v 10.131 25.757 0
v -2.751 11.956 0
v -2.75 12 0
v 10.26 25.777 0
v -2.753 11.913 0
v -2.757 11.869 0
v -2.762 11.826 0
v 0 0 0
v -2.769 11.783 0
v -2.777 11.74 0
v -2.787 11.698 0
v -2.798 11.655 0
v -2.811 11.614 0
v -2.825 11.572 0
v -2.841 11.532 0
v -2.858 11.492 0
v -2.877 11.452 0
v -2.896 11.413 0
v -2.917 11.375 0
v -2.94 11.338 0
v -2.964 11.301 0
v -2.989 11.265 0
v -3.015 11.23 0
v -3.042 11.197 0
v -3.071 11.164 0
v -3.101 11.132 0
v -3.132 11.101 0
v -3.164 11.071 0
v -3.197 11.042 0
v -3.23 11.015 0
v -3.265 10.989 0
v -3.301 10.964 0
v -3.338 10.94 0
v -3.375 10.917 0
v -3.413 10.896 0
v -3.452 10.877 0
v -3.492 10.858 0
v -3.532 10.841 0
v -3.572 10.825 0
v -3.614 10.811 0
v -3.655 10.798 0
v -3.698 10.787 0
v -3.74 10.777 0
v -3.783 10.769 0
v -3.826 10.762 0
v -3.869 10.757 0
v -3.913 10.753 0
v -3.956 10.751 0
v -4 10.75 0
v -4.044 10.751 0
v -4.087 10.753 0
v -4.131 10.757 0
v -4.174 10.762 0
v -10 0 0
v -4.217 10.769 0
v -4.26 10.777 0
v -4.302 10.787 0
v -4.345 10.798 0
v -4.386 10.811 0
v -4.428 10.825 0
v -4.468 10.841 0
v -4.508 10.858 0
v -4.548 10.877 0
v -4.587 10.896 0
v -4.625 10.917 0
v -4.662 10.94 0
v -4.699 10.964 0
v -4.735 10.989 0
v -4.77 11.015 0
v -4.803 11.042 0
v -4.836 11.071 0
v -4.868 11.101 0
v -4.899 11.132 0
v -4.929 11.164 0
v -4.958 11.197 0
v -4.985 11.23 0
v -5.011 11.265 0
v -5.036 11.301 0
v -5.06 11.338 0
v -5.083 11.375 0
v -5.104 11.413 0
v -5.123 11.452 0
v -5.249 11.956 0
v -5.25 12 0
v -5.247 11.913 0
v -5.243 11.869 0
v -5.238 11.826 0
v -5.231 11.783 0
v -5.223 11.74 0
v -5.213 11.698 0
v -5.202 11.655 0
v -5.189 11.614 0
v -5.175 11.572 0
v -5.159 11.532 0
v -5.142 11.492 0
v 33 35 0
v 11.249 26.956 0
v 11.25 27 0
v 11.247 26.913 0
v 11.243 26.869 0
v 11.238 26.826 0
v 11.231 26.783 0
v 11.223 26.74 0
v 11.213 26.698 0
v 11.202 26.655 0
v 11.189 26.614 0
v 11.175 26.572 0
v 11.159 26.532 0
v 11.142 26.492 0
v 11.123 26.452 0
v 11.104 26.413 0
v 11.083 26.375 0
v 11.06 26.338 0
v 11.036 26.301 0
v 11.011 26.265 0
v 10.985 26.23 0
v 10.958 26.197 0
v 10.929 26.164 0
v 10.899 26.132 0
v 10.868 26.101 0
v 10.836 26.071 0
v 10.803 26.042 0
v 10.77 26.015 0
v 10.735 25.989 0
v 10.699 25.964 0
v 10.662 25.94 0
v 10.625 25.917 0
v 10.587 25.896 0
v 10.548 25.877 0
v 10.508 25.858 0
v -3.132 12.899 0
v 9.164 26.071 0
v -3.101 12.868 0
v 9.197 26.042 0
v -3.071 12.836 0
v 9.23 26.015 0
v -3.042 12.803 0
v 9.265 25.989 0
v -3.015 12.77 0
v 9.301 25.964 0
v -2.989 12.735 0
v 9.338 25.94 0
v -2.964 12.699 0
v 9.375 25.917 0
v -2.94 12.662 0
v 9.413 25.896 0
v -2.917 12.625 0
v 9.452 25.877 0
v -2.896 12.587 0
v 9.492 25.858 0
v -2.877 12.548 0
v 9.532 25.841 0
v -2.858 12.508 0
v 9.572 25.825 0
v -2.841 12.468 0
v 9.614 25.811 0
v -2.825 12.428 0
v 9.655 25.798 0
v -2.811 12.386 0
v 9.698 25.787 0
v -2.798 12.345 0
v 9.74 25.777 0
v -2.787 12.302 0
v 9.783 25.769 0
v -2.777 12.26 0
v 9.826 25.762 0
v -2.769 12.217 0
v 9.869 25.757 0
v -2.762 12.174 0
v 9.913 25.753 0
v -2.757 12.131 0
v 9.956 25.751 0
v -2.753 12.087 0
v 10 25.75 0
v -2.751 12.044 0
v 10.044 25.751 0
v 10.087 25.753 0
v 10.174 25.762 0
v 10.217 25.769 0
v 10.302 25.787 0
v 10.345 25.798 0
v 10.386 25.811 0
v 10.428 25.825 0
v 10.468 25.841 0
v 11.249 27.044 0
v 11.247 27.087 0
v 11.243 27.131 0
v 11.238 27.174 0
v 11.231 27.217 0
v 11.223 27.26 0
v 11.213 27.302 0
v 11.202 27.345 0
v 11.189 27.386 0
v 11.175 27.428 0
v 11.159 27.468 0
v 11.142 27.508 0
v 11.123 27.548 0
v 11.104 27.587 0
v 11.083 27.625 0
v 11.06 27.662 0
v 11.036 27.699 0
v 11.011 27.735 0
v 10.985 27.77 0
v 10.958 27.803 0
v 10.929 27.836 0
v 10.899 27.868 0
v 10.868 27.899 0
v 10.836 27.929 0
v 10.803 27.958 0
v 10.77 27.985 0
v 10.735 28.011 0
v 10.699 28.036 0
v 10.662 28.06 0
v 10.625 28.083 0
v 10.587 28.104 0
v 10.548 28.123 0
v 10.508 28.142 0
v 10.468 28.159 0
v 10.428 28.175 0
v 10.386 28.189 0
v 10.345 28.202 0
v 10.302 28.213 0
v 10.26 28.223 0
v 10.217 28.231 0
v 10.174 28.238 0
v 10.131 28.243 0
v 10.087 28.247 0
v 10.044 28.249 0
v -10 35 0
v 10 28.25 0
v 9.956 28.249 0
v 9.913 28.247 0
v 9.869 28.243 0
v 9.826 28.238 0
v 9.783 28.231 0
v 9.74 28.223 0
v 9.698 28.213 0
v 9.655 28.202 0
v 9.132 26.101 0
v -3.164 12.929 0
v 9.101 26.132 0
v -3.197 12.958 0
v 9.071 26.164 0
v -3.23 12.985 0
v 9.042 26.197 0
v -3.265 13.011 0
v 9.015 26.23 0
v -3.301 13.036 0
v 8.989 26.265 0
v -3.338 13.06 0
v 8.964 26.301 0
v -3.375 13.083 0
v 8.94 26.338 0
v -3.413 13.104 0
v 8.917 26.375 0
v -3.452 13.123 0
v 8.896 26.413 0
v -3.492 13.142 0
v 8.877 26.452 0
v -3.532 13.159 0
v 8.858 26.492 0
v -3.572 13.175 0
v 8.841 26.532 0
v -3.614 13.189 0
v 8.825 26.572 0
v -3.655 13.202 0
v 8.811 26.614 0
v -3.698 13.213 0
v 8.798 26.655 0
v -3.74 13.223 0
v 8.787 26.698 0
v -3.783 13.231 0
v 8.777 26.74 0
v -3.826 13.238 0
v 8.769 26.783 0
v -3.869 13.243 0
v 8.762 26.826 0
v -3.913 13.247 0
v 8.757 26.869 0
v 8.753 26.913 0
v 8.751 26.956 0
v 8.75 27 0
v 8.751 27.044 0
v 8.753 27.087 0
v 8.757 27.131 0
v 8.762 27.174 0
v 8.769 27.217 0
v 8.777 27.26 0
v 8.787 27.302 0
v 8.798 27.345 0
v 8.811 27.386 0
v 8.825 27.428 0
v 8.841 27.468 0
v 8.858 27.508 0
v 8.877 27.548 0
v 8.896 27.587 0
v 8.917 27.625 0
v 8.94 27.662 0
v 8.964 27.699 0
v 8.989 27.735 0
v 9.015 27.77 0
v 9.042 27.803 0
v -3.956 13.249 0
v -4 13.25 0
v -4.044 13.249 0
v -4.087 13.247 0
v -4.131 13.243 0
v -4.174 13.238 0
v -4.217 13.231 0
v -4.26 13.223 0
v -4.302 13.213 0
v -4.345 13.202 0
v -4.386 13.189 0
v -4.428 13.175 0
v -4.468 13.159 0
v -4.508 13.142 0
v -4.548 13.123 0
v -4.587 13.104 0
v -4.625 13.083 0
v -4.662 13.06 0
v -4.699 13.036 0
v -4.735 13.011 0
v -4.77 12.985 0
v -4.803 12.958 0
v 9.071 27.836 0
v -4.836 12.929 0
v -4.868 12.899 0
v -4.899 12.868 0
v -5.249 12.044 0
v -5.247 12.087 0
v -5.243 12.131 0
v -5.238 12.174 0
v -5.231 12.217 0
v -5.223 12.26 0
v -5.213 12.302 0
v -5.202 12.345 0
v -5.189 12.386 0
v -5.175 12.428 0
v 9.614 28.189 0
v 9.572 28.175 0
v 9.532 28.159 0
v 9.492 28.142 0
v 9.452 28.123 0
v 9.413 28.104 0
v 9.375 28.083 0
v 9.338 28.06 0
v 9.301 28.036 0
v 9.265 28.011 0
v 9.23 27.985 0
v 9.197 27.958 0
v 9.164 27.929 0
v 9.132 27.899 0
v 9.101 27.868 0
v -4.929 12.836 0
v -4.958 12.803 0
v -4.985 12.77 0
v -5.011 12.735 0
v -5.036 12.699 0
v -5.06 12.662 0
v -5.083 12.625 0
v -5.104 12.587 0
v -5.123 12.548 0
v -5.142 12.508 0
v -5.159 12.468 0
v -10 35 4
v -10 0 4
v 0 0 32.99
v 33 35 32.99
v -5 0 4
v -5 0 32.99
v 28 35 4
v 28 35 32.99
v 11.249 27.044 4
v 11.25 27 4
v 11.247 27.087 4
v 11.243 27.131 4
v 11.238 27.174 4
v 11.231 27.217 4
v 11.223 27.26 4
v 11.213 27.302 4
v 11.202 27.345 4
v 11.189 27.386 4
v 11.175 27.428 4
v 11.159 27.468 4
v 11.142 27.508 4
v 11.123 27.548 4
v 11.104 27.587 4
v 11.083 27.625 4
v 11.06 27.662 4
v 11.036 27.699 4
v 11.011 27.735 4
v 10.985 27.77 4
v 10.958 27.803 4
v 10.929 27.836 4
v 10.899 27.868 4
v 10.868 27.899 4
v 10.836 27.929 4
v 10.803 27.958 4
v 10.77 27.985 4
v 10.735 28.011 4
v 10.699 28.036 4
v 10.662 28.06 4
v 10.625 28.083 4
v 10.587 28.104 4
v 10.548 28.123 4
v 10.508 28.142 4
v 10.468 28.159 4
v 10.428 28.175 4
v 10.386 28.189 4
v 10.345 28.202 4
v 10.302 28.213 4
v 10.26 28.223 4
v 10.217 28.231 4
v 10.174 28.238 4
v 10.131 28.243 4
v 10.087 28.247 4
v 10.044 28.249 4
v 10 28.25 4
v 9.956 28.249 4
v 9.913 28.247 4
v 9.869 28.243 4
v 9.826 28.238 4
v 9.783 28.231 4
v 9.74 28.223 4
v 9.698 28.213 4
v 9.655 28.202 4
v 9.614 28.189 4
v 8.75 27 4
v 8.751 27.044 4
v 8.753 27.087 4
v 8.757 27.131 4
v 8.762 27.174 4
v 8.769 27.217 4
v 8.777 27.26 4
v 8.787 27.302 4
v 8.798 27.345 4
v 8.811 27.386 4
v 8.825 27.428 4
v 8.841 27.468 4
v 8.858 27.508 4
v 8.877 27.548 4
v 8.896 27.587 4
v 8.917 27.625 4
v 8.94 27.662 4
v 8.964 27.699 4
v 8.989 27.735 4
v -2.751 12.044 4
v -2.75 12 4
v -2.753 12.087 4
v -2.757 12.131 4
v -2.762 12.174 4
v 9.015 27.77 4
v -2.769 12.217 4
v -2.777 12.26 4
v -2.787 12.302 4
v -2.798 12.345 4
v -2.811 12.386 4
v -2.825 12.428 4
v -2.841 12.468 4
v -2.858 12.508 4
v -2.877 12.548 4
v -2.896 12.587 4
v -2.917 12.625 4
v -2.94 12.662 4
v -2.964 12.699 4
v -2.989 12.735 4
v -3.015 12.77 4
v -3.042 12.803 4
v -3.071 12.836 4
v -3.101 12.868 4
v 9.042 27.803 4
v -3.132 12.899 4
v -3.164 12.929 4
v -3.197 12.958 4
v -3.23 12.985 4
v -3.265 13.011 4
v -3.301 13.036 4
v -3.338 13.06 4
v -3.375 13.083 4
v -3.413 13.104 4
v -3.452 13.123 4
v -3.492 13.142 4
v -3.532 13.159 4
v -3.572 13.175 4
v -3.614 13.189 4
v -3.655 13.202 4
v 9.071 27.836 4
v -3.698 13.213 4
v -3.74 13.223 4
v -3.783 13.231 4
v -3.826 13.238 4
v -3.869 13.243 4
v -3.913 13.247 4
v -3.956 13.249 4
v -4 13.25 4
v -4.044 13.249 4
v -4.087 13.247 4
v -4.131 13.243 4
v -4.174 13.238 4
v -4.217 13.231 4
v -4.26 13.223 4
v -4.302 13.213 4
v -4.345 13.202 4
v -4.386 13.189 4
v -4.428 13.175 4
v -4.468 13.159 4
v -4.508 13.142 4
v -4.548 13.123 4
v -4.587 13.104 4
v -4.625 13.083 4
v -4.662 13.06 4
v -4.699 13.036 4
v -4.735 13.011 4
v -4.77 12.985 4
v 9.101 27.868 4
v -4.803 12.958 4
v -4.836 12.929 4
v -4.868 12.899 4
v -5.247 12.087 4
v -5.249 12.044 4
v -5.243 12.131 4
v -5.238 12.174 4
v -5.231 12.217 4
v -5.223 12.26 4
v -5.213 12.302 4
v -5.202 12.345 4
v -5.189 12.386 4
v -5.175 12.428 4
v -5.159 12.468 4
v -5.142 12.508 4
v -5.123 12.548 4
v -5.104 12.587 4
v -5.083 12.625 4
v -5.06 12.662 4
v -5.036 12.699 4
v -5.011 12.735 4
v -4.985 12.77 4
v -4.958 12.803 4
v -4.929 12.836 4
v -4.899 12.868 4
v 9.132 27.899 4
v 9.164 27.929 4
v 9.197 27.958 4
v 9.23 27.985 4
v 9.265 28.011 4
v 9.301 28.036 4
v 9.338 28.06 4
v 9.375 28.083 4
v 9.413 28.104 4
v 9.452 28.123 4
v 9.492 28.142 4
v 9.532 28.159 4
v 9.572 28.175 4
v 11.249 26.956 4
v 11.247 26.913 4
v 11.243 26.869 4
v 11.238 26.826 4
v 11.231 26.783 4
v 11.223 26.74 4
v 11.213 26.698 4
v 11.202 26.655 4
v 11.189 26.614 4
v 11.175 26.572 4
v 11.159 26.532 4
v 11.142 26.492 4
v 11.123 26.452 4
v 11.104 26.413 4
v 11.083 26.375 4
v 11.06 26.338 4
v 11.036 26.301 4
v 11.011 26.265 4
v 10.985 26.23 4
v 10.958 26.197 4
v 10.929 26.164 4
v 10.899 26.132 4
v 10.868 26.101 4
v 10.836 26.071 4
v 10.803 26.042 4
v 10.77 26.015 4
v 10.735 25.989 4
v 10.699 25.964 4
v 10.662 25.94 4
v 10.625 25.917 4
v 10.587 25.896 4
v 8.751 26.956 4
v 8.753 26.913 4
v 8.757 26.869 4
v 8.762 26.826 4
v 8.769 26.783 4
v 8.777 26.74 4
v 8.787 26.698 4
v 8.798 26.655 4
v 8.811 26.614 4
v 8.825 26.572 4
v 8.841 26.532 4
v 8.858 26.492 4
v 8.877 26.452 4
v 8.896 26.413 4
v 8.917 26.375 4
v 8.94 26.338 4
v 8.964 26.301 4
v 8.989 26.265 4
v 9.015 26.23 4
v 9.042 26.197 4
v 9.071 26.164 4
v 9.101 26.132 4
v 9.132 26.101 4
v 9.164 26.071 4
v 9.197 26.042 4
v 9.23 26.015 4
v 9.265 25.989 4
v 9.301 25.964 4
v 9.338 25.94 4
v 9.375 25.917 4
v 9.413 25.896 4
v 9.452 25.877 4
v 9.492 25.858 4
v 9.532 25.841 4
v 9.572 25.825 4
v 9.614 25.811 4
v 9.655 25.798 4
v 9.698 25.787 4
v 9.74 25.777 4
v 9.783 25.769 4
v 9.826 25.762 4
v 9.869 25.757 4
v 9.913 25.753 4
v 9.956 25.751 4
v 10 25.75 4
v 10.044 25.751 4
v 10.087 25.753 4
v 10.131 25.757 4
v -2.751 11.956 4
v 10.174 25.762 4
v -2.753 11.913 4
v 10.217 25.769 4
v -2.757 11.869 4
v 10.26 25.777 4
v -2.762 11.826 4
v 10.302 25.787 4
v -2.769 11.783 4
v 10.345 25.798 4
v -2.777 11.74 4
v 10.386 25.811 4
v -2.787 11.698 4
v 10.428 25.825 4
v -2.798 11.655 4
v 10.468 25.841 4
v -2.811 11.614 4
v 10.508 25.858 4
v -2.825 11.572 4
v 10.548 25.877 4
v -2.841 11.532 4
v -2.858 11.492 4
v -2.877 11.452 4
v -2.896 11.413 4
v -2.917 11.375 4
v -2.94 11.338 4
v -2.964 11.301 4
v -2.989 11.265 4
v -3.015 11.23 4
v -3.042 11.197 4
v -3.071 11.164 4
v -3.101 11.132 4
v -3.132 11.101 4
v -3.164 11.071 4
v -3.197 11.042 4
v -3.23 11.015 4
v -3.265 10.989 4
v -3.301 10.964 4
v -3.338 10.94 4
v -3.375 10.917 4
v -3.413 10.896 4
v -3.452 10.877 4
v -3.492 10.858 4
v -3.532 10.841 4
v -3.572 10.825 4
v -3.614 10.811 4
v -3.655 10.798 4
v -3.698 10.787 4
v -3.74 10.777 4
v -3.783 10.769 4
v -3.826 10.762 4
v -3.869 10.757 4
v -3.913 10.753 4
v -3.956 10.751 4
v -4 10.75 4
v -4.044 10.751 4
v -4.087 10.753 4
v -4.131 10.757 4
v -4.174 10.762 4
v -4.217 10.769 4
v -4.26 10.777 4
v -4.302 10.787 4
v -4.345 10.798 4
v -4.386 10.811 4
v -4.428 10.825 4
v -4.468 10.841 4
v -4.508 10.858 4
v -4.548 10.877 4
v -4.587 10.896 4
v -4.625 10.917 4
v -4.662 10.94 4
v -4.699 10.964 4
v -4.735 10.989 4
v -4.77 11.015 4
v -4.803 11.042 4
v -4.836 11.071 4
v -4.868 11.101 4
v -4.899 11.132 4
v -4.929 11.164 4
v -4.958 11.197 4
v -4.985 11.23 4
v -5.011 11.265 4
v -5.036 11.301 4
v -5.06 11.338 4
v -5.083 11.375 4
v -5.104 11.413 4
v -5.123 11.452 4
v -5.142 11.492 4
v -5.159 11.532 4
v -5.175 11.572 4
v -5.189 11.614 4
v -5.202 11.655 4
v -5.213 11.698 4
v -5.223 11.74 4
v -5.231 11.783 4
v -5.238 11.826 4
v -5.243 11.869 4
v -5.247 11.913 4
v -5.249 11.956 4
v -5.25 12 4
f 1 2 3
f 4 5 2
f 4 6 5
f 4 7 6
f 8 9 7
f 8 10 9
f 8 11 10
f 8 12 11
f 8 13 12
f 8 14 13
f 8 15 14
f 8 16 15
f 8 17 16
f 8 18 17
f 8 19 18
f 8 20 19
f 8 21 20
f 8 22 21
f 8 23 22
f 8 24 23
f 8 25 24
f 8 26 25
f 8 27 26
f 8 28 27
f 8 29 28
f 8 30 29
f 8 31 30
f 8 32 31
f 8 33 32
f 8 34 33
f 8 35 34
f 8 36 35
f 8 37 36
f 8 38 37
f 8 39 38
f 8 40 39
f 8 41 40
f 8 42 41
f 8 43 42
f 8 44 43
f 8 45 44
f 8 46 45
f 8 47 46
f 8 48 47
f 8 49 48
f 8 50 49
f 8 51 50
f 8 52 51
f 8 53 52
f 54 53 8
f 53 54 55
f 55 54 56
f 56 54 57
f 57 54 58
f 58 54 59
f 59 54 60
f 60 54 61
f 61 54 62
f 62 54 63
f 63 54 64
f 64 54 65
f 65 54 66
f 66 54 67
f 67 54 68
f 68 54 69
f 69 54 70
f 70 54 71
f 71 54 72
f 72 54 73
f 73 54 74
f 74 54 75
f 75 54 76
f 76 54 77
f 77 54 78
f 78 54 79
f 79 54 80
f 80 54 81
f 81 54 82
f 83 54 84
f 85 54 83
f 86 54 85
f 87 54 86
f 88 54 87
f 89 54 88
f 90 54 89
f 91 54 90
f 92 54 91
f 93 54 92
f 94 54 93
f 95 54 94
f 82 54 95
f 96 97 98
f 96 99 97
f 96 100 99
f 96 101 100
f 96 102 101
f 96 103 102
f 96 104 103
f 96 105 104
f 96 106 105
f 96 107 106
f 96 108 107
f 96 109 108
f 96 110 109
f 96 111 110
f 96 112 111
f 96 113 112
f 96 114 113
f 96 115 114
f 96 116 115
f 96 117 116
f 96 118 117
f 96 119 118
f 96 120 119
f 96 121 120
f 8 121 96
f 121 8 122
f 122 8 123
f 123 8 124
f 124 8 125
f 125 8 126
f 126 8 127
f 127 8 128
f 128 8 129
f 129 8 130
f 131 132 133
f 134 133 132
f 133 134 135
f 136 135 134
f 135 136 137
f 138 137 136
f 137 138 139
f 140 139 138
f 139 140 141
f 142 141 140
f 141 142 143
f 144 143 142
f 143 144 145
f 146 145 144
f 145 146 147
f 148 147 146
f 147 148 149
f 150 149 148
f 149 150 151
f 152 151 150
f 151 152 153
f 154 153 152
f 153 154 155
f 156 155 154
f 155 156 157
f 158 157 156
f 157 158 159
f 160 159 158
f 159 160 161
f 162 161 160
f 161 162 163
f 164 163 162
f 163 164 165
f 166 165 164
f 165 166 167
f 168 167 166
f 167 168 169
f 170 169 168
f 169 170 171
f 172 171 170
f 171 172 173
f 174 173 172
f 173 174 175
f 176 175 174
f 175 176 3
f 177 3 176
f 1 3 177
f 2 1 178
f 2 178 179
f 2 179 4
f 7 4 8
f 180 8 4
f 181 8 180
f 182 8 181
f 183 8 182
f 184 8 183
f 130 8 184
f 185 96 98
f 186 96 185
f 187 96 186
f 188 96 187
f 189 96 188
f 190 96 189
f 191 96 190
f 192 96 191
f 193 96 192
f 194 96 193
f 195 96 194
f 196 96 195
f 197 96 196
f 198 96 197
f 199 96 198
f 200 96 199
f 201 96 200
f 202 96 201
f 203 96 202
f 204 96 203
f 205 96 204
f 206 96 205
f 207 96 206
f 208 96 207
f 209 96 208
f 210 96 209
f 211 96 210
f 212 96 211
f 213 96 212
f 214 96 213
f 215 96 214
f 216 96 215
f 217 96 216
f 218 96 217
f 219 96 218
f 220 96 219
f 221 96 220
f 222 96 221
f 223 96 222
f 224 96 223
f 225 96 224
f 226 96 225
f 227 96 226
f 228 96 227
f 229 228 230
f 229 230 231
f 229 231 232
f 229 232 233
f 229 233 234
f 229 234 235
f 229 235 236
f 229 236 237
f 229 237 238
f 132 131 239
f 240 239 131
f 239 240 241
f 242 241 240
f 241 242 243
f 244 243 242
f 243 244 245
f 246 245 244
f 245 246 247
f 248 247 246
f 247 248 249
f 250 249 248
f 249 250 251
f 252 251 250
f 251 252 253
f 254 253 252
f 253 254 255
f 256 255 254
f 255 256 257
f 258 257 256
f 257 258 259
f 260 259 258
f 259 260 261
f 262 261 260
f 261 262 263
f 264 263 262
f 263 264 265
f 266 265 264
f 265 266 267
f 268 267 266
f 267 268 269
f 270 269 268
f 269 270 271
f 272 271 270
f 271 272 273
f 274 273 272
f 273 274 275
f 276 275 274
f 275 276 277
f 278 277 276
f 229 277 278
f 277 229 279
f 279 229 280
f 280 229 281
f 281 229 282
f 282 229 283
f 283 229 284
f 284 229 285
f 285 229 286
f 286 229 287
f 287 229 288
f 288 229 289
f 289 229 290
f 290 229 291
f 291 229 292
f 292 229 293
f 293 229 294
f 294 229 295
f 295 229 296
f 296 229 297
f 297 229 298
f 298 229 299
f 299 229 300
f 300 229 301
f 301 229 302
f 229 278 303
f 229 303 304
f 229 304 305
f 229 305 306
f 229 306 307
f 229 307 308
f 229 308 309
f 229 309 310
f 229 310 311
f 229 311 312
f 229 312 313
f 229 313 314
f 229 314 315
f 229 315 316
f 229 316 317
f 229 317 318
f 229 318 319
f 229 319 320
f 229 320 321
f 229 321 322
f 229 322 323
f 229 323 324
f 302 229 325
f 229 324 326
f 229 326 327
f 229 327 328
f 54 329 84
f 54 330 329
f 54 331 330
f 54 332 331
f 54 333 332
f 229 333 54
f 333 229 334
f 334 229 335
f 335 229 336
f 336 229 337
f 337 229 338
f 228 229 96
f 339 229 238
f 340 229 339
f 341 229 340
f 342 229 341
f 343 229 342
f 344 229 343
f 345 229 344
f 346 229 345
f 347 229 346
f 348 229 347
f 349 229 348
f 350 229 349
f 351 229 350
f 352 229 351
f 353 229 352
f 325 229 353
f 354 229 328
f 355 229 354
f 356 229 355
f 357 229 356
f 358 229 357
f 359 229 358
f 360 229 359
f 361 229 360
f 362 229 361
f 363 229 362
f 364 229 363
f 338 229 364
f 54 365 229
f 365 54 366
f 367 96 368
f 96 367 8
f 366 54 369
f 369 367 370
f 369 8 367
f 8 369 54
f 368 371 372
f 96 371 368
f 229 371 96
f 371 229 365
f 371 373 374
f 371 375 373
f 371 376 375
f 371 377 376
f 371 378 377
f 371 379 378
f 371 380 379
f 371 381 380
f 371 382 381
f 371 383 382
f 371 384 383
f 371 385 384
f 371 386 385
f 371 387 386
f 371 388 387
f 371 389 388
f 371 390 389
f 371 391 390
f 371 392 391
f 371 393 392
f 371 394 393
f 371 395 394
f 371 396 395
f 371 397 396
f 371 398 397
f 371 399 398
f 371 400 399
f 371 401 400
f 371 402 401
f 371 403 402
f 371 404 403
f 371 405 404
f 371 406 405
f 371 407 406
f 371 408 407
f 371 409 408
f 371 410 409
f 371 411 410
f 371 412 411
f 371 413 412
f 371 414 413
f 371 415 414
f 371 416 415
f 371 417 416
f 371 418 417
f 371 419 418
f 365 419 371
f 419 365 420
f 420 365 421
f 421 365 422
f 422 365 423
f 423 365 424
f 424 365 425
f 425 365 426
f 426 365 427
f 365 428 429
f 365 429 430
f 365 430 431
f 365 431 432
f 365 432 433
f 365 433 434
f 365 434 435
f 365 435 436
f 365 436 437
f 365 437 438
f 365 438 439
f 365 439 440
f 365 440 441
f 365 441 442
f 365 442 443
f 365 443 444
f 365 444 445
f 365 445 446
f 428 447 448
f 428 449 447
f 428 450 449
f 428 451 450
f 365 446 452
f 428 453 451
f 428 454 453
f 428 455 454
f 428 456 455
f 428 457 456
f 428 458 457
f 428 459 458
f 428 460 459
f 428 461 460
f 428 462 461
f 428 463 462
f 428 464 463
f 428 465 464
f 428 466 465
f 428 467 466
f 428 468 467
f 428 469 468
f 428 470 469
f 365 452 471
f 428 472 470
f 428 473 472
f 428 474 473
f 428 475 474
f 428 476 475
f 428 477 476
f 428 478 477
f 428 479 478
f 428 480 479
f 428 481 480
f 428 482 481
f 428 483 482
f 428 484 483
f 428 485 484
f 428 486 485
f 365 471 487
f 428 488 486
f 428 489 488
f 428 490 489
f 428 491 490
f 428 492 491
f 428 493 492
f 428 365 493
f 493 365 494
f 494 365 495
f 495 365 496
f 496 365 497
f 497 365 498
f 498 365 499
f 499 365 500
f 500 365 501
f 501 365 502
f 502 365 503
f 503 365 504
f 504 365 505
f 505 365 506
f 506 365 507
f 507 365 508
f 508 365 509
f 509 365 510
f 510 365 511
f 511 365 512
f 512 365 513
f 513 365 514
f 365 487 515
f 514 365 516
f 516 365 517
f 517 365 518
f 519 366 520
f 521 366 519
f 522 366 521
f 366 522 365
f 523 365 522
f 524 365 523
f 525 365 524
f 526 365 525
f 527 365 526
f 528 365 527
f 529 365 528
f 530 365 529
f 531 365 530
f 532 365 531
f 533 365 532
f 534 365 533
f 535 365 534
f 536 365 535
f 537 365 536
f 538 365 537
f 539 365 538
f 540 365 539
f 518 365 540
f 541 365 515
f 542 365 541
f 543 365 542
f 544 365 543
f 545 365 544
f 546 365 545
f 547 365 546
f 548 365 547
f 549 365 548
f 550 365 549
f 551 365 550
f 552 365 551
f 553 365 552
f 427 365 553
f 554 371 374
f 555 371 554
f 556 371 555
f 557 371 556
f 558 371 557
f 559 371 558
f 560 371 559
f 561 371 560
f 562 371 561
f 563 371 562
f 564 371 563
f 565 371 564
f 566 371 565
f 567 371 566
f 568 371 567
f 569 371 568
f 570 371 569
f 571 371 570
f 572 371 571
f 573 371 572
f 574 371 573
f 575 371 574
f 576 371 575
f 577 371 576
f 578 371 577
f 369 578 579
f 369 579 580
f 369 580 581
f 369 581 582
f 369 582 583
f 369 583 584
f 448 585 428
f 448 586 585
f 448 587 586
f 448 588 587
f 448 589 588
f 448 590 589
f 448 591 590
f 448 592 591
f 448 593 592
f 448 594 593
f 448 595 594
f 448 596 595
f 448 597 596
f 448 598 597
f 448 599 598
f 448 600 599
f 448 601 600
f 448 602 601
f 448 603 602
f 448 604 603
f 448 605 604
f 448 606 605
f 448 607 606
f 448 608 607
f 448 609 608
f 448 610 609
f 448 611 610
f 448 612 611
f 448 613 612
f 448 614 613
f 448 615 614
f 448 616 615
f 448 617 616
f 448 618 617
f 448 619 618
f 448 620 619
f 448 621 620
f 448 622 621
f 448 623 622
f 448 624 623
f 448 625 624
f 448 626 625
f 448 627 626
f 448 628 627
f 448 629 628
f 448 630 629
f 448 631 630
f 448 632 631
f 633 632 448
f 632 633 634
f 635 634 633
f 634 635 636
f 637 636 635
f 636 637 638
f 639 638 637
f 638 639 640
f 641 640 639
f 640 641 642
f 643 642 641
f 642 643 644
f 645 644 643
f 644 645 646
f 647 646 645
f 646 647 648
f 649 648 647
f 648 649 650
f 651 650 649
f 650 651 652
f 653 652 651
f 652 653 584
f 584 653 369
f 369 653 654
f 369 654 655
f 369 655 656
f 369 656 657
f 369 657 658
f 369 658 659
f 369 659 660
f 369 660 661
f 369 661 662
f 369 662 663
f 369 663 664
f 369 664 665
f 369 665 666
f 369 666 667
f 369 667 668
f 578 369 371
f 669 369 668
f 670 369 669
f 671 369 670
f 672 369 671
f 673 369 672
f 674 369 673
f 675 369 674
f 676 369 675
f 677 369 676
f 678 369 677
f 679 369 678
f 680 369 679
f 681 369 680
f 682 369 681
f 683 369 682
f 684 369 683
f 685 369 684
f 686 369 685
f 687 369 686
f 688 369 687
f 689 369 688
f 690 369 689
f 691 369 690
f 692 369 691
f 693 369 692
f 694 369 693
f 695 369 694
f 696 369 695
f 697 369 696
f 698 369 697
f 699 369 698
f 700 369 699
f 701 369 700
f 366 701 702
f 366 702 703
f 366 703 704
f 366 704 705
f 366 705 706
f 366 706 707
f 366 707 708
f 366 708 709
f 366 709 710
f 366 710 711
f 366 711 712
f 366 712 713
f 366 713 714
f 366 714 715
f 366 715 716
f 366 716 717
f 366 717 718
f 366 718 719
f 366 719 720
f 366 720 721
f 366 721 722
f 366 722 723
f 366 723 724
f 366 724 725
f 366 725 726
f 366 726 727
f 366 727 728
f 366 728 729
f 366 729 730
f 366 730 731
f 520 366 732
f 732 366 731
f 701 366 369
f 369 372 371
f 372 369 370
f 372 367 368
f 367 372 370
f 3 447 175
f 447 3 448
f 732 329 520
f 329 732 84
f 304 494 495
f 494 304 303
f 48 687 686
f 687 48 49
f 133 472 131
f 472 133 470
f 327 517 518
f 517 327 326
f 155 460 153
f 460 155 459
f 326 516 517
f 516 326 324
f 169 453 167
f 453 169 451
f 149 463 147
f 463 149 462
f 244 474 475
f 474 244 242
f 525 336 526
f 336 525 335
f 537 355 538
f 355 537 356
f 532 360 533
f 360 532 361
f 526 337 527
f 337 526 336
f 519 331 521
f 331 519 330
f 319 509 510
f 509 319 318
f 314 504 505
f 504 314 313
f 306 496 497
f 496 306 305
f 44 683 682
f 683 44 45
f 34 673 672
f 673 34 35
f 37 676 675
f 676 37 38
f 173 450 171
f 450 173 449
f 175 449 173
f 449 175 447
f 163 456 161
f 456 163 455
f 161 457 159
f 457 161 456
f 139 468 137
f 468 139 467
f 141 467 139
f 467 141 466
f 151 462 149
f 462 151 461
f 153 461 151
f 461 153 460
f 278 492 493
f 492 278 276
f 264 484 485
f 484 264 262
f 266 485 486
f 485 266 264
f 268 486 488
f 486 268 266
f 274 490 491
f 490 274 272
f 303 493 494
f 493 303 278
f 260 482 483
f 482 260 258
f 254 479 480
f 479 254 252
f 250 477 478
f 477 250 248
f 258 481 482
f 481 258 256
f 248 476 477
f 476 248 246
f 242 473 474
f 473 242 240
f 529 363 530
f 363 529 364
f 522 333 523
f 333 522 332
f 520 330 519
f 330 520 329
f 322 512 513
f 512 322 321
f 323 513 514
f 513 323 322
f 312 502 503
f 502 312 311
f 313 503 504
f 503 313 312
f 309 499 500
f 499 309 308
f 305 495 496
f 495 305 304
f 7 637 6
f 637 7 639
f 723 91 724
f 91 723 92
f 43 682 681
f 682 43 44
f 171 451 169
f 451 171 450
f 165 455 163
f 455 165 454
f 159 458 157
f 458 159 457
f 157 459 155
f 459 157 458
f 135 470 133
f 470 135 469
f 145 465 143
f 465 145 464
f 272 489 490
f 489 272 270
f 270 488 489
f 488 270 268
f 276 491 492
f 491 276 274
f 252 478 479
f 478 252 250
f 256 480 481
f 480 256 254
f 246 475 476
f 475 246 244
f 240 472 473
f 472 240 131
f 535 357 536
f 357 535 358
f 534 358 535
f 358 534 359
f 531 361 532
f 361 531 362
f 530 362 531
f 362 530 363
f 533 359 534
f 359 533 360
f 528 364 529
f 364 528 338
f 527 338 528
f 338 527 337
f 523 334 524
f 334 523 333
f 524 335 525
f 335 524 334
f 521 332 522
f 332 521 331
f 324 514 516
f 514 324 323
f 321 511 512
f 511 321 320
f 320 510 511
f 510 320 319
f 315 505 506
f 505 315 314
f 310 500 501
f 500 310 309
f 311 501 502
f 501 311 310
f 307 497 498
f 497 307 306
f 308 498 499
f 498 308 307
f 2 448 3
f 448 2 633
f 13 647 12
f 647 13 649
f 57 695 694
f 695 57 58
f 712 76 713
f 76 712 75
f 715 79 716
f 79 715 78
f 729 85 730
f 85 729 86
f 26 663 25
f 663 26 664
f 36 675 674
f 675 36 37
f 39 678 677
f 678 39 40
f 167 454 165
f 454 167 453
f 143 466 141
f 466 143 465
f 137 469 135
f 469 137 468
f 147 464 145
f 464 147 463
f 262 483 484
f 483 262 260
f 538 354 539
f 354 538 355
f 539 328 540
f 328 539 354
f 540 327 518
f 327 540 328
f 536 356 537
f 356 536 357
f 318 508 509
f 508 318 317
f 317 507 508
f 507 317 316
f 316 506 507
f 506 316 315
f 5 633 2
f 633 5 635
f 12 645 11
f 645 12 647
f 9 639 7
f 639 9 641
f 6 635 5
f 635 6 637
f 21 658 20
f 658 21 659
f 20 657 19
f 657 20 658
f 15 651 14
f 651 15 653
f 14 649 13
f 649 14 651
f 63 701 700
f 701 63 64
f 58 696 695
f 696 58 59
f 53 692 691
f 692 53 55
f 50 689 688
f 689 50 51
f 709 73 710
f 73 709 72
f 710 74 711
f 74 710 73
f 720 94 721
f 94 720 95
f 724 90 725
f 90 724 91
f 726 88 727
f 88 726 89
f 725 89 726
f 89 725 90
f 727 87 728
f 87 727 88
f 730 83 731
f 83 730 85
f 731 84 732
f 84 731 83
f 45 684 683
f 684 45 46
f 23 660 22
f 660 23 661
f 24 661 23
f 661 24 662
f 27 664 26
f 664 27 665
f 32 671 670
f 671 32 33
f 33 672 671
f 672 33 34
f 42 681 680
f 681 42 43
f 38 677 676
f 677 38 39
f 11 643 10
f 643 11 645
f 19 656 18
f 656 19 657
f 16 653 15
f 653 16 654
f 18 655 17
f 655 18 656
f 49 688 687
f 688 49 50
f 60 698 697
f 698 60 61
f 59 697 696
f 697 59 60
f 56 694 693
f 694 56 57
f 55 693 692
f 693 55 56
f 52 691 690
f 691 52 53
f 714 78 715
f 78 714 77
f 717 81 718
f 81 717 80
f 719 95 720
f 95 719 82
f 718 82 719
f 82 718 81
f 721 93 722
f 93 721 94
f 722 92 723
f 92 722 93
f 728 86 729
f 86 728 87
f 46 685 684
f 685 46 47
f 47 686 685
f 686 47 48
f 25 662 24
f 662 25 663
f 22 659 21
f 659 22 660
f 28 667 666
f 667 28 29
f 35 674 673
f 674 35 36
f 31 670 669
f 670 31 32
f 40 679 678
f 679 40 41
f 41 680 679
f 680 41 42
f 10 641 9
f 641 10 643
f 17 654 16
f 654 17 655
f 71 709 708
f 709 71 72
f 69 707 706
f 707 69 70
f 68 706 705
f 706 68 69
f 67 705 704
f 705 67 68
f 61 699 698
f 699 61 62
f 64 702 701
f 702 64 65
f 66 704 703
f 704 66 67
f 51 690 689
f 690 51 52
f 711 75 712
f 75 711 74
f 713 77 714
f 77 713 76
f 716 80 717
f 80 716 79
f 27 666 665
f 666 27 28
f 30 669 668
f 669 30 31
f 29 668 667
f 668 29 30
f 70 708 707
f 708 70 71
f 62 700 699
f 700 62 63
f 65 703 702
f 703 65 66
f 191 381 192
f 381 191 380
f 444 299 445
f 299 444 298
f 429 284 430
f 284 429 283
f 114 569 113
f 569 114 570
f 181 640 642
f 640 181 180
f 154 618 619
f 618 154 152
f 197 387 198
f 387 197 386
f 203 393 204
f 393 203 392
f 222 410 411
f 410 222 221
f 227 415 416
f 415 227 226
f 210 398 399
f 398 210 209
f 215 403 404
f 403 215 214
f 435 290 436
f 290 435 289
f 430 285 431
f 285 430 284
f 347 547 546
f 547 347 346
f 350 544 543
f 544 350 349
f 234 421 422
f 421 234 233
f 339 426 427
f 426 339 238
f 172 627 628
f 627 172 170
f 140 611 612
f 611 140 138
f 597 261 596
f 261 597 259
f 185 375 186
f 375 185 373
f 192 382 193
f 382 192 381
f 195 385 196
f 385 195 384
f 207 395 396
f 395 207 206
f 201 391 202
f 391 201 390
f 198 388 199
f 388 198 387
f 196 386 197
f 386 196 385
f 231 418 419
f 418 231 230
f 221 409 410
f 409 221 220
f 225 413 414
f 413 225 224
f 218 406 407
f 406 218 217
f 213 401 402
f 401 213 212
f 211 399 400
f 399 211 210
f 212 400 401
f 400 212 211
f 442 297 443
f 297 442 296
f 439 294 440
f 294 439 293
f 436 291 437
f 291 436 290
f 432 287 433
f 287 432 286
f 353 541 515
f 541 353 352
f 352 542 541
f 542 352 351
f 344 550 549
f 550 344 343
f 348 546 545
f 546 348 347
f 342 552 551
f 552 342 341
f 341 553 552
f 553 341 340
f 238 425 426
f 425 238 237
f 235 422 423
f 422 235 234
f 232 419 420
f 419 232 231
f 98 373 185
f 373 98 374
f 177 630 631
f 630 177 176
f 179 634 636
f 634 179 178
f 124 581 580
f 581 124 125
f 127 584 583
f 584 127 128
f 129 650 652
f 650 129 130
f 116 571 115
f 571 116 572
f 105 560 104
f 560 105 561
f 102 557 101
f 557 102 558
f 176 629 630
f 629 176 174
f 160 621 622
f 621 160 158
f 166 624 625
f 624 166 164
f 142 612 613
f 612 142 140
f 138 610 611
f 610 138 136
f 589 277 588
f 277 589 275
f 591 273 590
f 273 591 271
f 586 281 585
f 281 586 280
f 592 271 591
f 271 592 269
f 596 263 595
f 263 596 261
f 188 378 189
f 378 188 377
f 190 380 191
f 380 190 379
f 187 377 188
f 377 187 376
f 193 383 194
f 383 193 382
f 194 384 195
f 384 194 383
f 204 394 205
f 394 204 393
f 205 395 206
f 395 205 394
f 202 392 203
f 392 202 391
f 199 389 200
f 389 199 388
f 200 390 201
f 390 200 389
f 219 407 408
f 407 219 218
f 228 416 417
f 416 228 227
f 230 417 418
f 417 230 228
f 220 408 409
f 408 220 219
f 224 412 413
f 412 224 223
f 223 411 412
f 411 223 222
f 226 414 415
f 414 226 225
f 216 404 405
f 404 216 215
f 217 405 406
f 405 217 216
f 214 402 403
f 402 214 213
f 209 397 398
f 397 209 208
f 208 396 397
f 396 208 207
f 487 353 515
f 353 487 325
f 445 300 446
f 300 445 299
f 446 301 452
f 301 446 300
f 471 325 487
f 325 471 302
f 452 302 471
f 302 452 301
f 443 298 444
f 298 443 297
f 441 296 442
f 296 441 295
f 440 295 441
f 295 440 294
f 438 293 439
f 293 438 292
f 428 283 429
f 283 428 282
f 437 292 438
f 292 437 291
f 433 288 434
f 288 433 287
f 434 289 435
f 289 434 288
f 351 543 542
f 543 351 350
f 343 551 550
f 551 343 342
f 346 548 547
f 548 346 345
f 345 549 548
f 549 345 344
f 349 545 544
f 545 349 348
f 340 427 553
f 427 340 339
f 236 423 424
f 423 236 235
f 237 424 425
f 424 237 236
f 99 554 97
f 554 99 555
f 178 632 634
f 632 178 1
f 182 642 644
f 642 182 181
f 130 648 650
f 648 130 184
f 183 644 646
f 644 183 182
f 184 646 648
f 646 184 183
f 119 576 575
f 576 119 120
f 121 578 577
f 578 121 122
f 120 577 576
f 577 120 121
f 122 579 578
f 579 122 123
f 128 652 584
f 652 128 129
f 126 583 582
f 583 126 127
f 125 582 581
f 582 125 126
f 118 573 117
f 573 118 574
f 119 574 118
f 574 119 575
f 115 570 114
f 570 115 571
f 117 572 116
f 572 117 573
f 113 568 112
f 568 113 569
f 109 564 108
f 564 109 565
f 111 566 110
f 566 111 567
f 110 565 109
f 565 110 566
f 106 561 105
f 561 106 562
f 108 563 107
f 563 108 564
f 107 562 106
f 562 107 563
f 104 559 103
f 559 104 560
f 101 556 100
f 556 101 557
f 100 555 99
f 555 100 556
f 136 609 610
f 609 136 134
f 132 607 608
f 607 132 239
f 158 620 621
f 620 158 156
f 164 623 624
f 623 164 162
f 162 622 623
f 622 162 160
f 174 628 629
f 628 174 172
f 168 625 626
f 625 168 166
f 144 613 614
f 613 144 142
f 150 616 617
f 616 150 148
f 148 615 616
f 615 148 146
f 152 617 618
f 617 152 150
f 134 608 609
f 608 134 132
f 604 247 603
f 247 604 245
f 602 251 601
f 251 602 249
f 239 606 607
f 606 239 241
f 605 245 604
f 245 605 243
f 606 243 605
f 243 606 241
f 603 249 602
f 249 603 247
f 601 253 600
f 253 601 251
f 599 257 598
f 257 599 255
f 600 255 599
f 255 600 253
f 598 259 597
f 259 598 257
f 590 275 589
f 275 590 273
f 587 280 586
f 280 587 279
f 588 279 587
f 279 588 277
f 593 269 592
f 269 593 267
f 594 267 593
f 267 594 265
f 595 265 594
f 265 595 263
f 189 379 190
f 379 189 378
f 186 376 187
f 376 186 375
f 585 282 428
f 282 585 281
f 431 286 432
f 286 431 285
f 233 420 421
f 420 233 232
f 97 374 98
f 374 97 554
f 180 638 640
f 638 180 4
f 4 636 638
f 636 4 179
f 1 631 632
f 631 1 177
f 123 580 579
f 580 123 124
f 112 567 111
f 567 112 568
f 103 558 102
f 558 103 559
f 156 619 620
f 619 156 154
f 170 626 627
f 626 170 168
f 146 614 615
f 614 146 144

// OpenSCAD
// Settings
$fn = $preview ? 24 : 180;


// variables
margin              =   0.01;
bottom_thickness    =  3;
part_h              =  4; //30;
part_h2              =  33 - part_h; 

E_dx                =  33;
E_dy                =  40+40+33; //partD1+partd2+gap

Angle               =  37;

screw_hole_h        =  20;
screw_hole_d        =   2.5;

wall_thickness      =   4;
round_edge_r        =  25;
    wall = 5;
    



ShapePoints1 = [
    // Top
    [-10,  0,  0 ],
    [  0,  0,  0 ],  
    [ 33, 35,  0 ],  
    [-10, 35,  0 ],  

  
    // Bottom
    [-10,  0,  part_h ],
    [  0,  0,  part_h ],  
    [ 33, 35,  part_h ],  
    [-10, 35,  part_h ], 


 ]; 
  
ShapeFaces1 = [
  [ 0, 1, 2, 3],  // Bottom
  
  [ 1, 0, 4, 5],  
  [ 2, 1, 5, 6],  
  [ 3, 2, 6, 7],  
  [ 0, 3, 7, 4],  
  
  [ 7, 6, 5, 4]   // Top
]; 



ShapePoints2 = [
    // Top
    [ 0-wall,  0,  0 ],  //  0
    [  0,  0,  0 ],  //  1
    [ 33, 35,  0 ],  //  2
    [ 33-wall, 35,  0 ],  //  3
  
    // Bottom
    [ 0-wall,  0,  part_h2 ],  //  4
    [  0,  0,  part_h2 ],  //  5
    [ 33, 35,  part_h2 ],  //  6
    [ 33-wall, 35,  part_h2 ],  //  7
    
 ]; 
  
ShapeFaces2 = [
  [ 0, 1, 2, 3],  // Bottom
  
  [ 1, 0, 4, 5],  
  [ 2, 1, 5, 6],  
  [ 3, 2, 6, 7],  
  [ 0, 3, 7, 4],  
  
  [ 7, 6, 5, 4]   // Top
]; 
    
difference(){
    
 
        
    union(){          
        polyhedron( ShapePoints1, ShapeFaces1 );
        translate([0,0,part_h-margin])polyhedron( ShapePoints2, ShapeFaces2 );
    }
    
           // screw holes
    translate([ -4, 12,0])  cylinder(h=screw_hole_h, d=screw_hole_d, center=true);
    translate([ 10, 27,0])  cylinder(h=screw_hole_h, d=screw_hole_d, center=true);


    
}
